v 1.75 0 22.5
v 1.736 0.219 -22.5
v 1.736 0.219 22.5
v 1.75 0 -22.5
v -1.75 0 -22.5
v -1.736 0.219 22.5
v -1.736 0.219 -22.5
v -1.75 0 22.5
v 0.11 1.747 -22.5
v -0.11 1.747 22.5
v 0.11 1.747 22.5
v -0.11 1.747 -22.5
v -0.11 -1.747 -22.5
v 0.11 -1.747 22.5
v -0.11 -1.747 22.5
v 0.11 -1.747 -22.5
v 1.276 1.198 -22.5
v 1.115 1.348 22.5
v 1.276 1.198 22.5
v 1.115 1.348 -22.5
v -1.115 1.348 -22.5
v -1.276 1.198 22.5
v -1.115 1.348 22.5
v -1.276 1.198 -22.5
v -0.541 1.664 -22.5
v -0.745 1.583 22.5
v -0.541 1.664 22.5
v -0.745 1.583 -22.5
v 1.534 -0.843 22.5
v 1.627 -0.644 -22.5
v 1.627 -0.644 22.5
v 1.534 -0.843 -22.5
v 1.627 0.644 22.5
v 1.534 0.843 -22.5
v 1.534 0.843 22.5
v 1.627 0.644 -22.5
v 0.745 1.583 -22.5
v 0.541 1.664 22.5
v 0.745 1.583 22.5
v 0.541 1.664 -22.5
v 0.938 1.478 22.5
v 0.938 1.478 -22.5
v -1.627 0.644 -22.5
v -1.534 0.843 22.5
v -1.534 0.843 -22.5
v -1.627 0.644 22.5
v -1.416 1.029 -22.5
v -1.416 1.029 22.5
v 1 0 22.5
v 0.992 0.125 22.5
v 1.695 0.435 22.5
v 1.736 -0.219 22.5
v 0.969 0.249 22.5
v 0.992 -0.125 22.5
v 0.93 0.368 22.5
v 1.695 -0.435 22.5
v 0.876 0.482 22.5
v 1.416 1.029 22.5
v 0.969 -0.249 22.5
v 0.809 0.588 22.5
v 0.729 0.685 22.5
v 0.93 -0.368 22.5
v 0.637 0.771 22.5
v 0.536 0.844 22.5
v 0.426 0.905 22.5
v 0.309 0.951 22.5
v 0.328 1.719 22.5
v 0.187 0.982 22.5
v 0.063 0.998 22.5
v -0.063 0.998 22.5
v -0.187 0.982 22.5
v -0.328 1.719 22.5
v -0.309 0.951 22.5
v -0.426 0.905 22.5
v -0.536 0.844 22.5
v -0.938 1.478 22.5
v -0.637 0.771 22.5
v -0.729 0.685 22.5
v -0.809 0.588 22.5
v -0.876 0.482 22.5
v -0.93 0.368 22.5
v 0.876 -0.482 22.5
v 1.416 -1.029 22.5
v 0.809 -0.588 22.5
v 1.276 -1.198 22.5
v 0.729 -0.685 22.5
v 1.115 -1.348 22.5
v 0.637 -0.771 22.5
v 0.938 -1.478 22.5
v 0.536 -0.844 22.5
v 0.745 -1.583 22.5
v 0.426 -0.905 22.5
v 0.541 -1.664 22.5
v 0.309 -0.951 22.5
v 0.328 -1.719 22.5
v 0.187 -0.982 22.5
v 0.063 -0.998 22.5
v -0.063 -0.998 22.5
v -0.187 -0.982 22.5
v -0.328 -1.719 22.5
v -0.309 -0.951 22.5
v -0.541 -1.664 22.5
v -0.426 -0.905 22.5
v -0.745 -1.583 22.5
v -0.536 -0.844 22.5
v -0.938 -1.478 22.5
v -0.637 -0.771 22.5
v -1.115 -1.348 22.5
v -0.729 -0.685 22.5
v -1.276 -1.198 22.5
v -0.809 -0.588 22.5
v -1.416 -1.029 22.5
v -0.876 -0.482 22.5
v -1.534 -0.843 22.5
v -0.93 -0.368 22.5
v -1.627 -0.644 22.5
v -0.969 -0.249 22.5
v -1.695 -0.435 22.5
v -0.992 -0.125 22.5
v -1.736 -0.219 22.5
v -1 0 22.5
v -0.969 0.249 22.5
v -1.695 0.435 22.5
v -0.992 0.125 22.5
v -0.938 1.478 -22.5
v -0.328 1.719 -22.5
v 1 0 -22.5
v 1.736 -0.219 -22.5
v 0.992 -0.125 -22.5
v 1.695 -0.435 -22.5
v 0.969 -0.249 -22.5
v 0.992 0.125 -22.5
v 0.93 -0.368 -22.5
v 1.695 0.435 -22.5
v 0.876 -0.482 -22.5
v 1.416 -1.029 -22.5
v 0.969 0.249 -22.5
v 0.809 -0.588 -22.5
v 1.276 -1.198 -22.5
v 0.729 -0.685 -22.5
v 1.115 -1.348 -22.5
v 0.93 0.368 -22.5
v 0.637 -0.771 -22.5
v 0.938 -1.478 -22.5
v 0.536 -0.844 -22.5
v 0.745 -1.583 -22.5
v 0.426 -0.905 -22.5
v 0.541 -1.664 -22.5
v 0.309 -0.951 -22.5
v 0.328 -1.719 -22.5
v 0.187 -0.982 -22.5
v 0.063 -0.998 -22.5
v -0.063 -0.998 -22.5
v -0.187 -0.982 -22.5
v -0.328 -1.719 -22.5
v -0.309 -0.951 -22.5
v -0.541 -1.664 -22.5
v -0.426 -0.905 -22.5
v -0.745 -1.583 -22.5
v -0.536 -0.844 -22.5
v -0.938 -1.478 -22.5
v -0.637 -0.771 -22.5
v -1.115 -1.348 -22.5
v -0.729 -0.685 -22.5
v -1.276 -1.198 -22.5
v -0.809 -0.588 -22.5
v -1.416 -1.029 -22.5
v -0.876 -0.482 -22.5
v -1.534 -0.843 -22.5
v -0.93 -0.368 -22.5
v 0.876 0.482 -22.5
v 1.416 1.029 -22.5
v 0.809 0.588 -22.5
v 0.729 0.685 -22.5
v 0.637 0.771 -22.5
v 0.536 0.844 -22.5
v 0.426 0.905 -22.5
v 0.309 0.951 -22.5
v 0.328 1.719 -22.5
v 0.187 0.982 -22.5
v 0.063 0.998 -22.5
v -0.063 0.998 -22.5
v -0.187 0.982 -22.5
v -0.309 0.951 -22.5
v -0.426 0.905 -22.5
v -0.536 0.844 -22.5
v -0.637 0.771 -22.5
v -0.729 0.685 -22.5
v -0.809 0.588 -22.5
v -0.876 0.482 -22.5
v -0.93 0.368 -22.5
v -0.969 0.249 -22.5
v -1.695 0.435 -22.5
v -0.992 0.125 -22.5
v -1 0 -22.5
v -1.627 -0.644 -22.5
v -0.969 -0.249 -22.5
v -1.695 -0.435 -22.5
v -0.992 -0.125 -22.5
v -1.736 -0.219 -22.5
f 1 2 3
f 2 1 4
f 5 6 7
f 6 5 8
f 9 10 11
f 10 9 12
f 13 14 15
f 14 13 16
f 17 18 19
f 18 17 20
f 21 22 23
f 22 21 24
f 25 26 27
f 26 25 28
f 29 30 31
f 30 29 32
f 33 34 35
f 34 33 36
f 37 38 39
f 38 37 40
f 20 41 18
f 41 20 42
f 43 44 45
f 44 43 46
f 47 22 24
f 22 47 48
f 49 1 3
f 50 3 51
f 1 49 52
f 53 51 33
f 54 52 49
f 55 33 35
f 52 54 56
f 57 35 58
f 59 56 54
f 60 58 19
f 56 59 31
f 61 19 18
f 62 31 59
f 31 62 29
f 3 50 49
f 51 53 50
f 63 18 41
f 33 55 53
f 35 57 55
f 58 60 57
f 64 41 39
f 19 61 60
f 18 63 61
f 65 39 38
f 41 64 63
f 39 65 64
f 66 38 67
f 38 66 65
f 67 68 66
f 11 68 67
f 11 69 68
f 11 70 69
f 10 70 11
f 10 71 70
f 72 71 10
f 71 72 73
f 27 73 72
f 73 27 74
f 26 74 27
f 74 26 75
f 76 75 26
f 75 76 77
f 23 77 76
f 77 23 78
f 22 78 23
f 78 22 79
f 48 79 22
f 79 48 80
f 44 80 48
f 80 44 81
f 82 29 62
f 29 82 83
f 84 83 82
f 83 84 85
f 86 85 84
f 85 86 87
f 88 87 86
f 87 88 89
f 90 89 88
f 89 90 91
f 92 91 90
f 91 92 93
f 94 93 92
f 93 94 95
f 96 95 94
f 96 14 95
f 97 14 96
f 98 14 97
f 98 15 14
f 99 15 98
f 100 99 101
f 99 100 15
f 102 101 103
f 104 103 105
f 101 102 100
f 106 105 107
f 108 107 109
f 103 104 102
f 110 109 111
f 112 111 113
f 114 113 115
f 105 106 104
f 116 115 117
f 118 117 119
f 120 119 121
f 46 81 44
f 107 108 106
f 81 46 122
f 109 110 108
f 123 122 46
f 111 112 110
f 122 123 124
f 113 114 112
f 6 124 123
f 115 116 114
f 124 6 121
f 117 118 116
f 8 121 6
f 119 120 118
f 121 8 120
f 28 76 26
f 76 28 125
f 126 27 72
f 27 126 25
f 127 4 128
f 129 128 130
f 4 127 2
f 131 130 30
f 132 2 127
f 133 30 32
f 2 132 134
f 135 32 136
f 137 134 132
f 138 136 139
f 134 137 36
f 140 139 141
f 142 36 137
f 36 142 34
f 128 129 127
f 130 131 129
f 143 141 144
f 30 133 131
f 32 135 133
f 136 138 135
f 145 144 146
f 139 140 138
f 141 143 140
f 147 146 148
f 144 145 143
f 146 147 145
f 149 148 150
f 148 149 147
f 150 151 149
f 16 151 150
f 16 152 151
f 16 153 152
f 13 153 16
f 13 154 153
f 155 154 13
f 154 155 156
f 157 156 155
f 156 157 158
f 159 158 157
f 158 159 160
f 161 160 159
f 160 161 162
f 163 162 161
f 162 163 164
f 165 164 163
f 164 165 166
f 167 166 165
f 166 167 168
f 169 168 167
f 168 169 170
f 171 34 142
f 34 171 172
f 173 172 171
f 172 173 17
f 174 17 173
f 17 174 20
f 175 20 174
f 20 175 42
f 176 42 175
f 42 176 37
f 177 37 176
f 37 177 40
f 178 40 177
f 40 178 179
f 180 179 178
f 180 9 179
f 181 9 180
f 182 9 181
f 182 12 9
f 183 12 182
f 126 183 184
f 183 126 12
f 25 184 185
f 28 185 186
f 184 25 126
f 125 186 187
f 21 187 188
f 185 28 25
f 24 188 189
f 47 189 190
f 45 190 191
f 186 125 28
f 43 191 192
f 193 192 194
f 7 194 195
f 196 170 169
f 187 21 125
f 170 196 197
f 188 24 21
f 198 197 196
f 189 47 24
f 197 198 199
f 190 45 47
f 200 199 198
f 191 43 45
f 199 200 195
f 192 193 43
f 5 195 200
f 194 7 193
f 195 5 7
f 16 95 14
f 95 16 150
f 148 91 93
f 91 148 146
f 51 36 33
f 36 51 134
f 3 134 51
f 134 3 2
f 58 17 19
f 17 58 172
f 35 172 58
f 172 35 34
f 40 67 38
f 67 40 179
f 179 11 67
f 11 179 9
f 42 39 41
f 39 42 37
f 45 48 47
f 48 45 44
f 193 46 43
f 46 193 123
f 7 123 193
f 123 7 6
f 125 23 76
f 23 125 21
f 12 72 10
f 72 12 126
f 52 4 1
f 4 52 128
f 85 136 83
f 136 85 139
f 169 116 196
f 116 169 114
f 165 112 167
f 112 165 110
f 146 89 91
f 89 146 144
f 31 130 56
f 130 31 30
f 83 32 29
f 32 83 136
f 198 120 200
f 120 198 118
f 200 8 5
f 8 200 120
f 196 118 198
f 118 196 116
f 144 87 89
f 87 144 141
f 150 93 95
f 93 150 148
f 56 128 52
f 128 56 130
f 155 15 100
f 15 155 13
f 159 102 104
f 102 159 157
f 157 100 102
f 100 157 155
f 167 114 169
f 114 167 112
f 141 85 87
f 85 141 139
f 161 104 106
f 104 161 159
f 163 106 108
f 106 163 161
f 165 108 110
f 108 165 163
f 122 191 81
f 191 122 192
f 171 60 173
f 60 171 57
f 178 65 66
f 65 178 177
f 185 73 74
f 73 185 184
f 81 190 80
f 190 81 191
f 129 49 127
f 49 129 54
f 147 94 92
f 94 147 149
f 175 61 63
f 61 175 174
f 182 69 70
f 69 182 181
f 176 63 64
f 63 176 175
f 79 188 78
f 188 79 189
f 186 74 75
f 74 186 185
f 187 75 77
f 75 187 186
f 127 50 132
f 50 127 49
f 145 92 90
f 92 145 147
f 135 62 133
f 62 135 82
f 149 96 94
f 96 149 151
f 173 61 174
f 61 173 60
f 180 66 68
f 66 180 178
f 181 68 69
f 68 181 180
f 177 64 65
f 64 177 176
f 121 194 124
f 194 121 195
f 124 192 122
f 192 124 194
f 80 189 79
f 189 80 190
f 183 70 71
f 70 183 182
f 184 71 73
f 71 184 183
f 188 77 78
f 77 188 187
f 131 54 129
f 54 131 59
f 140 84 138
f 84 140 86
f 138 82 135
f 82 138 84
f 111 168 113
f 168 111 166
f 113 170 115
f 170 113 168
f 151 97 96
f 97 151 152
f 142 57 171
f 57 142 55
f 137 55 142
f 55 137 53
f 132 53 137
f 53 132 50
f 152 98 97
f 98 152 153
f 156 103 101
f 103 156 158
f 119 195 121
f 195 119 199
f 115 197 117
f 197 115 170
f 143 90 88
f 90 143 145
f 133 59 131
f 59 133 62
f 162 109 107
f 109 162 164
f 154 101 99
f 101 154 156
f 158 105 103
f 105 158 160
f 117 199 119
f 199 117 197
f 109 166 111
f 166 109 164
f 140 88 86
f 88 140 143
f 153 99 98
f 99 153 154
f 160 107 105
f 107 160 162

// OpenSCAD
$fn = 50;


difference() {
	union() {
		translate(v = [0, 0, -22.5000000000]) {
			cylinder(h = 45, r = 1.7500000000);
		}
	}
	union() {
		translate(v = [0, 0, -100.0000000000]) {
			cylinder(h = 200, r = 1.0000000000);
		}
	}
}
